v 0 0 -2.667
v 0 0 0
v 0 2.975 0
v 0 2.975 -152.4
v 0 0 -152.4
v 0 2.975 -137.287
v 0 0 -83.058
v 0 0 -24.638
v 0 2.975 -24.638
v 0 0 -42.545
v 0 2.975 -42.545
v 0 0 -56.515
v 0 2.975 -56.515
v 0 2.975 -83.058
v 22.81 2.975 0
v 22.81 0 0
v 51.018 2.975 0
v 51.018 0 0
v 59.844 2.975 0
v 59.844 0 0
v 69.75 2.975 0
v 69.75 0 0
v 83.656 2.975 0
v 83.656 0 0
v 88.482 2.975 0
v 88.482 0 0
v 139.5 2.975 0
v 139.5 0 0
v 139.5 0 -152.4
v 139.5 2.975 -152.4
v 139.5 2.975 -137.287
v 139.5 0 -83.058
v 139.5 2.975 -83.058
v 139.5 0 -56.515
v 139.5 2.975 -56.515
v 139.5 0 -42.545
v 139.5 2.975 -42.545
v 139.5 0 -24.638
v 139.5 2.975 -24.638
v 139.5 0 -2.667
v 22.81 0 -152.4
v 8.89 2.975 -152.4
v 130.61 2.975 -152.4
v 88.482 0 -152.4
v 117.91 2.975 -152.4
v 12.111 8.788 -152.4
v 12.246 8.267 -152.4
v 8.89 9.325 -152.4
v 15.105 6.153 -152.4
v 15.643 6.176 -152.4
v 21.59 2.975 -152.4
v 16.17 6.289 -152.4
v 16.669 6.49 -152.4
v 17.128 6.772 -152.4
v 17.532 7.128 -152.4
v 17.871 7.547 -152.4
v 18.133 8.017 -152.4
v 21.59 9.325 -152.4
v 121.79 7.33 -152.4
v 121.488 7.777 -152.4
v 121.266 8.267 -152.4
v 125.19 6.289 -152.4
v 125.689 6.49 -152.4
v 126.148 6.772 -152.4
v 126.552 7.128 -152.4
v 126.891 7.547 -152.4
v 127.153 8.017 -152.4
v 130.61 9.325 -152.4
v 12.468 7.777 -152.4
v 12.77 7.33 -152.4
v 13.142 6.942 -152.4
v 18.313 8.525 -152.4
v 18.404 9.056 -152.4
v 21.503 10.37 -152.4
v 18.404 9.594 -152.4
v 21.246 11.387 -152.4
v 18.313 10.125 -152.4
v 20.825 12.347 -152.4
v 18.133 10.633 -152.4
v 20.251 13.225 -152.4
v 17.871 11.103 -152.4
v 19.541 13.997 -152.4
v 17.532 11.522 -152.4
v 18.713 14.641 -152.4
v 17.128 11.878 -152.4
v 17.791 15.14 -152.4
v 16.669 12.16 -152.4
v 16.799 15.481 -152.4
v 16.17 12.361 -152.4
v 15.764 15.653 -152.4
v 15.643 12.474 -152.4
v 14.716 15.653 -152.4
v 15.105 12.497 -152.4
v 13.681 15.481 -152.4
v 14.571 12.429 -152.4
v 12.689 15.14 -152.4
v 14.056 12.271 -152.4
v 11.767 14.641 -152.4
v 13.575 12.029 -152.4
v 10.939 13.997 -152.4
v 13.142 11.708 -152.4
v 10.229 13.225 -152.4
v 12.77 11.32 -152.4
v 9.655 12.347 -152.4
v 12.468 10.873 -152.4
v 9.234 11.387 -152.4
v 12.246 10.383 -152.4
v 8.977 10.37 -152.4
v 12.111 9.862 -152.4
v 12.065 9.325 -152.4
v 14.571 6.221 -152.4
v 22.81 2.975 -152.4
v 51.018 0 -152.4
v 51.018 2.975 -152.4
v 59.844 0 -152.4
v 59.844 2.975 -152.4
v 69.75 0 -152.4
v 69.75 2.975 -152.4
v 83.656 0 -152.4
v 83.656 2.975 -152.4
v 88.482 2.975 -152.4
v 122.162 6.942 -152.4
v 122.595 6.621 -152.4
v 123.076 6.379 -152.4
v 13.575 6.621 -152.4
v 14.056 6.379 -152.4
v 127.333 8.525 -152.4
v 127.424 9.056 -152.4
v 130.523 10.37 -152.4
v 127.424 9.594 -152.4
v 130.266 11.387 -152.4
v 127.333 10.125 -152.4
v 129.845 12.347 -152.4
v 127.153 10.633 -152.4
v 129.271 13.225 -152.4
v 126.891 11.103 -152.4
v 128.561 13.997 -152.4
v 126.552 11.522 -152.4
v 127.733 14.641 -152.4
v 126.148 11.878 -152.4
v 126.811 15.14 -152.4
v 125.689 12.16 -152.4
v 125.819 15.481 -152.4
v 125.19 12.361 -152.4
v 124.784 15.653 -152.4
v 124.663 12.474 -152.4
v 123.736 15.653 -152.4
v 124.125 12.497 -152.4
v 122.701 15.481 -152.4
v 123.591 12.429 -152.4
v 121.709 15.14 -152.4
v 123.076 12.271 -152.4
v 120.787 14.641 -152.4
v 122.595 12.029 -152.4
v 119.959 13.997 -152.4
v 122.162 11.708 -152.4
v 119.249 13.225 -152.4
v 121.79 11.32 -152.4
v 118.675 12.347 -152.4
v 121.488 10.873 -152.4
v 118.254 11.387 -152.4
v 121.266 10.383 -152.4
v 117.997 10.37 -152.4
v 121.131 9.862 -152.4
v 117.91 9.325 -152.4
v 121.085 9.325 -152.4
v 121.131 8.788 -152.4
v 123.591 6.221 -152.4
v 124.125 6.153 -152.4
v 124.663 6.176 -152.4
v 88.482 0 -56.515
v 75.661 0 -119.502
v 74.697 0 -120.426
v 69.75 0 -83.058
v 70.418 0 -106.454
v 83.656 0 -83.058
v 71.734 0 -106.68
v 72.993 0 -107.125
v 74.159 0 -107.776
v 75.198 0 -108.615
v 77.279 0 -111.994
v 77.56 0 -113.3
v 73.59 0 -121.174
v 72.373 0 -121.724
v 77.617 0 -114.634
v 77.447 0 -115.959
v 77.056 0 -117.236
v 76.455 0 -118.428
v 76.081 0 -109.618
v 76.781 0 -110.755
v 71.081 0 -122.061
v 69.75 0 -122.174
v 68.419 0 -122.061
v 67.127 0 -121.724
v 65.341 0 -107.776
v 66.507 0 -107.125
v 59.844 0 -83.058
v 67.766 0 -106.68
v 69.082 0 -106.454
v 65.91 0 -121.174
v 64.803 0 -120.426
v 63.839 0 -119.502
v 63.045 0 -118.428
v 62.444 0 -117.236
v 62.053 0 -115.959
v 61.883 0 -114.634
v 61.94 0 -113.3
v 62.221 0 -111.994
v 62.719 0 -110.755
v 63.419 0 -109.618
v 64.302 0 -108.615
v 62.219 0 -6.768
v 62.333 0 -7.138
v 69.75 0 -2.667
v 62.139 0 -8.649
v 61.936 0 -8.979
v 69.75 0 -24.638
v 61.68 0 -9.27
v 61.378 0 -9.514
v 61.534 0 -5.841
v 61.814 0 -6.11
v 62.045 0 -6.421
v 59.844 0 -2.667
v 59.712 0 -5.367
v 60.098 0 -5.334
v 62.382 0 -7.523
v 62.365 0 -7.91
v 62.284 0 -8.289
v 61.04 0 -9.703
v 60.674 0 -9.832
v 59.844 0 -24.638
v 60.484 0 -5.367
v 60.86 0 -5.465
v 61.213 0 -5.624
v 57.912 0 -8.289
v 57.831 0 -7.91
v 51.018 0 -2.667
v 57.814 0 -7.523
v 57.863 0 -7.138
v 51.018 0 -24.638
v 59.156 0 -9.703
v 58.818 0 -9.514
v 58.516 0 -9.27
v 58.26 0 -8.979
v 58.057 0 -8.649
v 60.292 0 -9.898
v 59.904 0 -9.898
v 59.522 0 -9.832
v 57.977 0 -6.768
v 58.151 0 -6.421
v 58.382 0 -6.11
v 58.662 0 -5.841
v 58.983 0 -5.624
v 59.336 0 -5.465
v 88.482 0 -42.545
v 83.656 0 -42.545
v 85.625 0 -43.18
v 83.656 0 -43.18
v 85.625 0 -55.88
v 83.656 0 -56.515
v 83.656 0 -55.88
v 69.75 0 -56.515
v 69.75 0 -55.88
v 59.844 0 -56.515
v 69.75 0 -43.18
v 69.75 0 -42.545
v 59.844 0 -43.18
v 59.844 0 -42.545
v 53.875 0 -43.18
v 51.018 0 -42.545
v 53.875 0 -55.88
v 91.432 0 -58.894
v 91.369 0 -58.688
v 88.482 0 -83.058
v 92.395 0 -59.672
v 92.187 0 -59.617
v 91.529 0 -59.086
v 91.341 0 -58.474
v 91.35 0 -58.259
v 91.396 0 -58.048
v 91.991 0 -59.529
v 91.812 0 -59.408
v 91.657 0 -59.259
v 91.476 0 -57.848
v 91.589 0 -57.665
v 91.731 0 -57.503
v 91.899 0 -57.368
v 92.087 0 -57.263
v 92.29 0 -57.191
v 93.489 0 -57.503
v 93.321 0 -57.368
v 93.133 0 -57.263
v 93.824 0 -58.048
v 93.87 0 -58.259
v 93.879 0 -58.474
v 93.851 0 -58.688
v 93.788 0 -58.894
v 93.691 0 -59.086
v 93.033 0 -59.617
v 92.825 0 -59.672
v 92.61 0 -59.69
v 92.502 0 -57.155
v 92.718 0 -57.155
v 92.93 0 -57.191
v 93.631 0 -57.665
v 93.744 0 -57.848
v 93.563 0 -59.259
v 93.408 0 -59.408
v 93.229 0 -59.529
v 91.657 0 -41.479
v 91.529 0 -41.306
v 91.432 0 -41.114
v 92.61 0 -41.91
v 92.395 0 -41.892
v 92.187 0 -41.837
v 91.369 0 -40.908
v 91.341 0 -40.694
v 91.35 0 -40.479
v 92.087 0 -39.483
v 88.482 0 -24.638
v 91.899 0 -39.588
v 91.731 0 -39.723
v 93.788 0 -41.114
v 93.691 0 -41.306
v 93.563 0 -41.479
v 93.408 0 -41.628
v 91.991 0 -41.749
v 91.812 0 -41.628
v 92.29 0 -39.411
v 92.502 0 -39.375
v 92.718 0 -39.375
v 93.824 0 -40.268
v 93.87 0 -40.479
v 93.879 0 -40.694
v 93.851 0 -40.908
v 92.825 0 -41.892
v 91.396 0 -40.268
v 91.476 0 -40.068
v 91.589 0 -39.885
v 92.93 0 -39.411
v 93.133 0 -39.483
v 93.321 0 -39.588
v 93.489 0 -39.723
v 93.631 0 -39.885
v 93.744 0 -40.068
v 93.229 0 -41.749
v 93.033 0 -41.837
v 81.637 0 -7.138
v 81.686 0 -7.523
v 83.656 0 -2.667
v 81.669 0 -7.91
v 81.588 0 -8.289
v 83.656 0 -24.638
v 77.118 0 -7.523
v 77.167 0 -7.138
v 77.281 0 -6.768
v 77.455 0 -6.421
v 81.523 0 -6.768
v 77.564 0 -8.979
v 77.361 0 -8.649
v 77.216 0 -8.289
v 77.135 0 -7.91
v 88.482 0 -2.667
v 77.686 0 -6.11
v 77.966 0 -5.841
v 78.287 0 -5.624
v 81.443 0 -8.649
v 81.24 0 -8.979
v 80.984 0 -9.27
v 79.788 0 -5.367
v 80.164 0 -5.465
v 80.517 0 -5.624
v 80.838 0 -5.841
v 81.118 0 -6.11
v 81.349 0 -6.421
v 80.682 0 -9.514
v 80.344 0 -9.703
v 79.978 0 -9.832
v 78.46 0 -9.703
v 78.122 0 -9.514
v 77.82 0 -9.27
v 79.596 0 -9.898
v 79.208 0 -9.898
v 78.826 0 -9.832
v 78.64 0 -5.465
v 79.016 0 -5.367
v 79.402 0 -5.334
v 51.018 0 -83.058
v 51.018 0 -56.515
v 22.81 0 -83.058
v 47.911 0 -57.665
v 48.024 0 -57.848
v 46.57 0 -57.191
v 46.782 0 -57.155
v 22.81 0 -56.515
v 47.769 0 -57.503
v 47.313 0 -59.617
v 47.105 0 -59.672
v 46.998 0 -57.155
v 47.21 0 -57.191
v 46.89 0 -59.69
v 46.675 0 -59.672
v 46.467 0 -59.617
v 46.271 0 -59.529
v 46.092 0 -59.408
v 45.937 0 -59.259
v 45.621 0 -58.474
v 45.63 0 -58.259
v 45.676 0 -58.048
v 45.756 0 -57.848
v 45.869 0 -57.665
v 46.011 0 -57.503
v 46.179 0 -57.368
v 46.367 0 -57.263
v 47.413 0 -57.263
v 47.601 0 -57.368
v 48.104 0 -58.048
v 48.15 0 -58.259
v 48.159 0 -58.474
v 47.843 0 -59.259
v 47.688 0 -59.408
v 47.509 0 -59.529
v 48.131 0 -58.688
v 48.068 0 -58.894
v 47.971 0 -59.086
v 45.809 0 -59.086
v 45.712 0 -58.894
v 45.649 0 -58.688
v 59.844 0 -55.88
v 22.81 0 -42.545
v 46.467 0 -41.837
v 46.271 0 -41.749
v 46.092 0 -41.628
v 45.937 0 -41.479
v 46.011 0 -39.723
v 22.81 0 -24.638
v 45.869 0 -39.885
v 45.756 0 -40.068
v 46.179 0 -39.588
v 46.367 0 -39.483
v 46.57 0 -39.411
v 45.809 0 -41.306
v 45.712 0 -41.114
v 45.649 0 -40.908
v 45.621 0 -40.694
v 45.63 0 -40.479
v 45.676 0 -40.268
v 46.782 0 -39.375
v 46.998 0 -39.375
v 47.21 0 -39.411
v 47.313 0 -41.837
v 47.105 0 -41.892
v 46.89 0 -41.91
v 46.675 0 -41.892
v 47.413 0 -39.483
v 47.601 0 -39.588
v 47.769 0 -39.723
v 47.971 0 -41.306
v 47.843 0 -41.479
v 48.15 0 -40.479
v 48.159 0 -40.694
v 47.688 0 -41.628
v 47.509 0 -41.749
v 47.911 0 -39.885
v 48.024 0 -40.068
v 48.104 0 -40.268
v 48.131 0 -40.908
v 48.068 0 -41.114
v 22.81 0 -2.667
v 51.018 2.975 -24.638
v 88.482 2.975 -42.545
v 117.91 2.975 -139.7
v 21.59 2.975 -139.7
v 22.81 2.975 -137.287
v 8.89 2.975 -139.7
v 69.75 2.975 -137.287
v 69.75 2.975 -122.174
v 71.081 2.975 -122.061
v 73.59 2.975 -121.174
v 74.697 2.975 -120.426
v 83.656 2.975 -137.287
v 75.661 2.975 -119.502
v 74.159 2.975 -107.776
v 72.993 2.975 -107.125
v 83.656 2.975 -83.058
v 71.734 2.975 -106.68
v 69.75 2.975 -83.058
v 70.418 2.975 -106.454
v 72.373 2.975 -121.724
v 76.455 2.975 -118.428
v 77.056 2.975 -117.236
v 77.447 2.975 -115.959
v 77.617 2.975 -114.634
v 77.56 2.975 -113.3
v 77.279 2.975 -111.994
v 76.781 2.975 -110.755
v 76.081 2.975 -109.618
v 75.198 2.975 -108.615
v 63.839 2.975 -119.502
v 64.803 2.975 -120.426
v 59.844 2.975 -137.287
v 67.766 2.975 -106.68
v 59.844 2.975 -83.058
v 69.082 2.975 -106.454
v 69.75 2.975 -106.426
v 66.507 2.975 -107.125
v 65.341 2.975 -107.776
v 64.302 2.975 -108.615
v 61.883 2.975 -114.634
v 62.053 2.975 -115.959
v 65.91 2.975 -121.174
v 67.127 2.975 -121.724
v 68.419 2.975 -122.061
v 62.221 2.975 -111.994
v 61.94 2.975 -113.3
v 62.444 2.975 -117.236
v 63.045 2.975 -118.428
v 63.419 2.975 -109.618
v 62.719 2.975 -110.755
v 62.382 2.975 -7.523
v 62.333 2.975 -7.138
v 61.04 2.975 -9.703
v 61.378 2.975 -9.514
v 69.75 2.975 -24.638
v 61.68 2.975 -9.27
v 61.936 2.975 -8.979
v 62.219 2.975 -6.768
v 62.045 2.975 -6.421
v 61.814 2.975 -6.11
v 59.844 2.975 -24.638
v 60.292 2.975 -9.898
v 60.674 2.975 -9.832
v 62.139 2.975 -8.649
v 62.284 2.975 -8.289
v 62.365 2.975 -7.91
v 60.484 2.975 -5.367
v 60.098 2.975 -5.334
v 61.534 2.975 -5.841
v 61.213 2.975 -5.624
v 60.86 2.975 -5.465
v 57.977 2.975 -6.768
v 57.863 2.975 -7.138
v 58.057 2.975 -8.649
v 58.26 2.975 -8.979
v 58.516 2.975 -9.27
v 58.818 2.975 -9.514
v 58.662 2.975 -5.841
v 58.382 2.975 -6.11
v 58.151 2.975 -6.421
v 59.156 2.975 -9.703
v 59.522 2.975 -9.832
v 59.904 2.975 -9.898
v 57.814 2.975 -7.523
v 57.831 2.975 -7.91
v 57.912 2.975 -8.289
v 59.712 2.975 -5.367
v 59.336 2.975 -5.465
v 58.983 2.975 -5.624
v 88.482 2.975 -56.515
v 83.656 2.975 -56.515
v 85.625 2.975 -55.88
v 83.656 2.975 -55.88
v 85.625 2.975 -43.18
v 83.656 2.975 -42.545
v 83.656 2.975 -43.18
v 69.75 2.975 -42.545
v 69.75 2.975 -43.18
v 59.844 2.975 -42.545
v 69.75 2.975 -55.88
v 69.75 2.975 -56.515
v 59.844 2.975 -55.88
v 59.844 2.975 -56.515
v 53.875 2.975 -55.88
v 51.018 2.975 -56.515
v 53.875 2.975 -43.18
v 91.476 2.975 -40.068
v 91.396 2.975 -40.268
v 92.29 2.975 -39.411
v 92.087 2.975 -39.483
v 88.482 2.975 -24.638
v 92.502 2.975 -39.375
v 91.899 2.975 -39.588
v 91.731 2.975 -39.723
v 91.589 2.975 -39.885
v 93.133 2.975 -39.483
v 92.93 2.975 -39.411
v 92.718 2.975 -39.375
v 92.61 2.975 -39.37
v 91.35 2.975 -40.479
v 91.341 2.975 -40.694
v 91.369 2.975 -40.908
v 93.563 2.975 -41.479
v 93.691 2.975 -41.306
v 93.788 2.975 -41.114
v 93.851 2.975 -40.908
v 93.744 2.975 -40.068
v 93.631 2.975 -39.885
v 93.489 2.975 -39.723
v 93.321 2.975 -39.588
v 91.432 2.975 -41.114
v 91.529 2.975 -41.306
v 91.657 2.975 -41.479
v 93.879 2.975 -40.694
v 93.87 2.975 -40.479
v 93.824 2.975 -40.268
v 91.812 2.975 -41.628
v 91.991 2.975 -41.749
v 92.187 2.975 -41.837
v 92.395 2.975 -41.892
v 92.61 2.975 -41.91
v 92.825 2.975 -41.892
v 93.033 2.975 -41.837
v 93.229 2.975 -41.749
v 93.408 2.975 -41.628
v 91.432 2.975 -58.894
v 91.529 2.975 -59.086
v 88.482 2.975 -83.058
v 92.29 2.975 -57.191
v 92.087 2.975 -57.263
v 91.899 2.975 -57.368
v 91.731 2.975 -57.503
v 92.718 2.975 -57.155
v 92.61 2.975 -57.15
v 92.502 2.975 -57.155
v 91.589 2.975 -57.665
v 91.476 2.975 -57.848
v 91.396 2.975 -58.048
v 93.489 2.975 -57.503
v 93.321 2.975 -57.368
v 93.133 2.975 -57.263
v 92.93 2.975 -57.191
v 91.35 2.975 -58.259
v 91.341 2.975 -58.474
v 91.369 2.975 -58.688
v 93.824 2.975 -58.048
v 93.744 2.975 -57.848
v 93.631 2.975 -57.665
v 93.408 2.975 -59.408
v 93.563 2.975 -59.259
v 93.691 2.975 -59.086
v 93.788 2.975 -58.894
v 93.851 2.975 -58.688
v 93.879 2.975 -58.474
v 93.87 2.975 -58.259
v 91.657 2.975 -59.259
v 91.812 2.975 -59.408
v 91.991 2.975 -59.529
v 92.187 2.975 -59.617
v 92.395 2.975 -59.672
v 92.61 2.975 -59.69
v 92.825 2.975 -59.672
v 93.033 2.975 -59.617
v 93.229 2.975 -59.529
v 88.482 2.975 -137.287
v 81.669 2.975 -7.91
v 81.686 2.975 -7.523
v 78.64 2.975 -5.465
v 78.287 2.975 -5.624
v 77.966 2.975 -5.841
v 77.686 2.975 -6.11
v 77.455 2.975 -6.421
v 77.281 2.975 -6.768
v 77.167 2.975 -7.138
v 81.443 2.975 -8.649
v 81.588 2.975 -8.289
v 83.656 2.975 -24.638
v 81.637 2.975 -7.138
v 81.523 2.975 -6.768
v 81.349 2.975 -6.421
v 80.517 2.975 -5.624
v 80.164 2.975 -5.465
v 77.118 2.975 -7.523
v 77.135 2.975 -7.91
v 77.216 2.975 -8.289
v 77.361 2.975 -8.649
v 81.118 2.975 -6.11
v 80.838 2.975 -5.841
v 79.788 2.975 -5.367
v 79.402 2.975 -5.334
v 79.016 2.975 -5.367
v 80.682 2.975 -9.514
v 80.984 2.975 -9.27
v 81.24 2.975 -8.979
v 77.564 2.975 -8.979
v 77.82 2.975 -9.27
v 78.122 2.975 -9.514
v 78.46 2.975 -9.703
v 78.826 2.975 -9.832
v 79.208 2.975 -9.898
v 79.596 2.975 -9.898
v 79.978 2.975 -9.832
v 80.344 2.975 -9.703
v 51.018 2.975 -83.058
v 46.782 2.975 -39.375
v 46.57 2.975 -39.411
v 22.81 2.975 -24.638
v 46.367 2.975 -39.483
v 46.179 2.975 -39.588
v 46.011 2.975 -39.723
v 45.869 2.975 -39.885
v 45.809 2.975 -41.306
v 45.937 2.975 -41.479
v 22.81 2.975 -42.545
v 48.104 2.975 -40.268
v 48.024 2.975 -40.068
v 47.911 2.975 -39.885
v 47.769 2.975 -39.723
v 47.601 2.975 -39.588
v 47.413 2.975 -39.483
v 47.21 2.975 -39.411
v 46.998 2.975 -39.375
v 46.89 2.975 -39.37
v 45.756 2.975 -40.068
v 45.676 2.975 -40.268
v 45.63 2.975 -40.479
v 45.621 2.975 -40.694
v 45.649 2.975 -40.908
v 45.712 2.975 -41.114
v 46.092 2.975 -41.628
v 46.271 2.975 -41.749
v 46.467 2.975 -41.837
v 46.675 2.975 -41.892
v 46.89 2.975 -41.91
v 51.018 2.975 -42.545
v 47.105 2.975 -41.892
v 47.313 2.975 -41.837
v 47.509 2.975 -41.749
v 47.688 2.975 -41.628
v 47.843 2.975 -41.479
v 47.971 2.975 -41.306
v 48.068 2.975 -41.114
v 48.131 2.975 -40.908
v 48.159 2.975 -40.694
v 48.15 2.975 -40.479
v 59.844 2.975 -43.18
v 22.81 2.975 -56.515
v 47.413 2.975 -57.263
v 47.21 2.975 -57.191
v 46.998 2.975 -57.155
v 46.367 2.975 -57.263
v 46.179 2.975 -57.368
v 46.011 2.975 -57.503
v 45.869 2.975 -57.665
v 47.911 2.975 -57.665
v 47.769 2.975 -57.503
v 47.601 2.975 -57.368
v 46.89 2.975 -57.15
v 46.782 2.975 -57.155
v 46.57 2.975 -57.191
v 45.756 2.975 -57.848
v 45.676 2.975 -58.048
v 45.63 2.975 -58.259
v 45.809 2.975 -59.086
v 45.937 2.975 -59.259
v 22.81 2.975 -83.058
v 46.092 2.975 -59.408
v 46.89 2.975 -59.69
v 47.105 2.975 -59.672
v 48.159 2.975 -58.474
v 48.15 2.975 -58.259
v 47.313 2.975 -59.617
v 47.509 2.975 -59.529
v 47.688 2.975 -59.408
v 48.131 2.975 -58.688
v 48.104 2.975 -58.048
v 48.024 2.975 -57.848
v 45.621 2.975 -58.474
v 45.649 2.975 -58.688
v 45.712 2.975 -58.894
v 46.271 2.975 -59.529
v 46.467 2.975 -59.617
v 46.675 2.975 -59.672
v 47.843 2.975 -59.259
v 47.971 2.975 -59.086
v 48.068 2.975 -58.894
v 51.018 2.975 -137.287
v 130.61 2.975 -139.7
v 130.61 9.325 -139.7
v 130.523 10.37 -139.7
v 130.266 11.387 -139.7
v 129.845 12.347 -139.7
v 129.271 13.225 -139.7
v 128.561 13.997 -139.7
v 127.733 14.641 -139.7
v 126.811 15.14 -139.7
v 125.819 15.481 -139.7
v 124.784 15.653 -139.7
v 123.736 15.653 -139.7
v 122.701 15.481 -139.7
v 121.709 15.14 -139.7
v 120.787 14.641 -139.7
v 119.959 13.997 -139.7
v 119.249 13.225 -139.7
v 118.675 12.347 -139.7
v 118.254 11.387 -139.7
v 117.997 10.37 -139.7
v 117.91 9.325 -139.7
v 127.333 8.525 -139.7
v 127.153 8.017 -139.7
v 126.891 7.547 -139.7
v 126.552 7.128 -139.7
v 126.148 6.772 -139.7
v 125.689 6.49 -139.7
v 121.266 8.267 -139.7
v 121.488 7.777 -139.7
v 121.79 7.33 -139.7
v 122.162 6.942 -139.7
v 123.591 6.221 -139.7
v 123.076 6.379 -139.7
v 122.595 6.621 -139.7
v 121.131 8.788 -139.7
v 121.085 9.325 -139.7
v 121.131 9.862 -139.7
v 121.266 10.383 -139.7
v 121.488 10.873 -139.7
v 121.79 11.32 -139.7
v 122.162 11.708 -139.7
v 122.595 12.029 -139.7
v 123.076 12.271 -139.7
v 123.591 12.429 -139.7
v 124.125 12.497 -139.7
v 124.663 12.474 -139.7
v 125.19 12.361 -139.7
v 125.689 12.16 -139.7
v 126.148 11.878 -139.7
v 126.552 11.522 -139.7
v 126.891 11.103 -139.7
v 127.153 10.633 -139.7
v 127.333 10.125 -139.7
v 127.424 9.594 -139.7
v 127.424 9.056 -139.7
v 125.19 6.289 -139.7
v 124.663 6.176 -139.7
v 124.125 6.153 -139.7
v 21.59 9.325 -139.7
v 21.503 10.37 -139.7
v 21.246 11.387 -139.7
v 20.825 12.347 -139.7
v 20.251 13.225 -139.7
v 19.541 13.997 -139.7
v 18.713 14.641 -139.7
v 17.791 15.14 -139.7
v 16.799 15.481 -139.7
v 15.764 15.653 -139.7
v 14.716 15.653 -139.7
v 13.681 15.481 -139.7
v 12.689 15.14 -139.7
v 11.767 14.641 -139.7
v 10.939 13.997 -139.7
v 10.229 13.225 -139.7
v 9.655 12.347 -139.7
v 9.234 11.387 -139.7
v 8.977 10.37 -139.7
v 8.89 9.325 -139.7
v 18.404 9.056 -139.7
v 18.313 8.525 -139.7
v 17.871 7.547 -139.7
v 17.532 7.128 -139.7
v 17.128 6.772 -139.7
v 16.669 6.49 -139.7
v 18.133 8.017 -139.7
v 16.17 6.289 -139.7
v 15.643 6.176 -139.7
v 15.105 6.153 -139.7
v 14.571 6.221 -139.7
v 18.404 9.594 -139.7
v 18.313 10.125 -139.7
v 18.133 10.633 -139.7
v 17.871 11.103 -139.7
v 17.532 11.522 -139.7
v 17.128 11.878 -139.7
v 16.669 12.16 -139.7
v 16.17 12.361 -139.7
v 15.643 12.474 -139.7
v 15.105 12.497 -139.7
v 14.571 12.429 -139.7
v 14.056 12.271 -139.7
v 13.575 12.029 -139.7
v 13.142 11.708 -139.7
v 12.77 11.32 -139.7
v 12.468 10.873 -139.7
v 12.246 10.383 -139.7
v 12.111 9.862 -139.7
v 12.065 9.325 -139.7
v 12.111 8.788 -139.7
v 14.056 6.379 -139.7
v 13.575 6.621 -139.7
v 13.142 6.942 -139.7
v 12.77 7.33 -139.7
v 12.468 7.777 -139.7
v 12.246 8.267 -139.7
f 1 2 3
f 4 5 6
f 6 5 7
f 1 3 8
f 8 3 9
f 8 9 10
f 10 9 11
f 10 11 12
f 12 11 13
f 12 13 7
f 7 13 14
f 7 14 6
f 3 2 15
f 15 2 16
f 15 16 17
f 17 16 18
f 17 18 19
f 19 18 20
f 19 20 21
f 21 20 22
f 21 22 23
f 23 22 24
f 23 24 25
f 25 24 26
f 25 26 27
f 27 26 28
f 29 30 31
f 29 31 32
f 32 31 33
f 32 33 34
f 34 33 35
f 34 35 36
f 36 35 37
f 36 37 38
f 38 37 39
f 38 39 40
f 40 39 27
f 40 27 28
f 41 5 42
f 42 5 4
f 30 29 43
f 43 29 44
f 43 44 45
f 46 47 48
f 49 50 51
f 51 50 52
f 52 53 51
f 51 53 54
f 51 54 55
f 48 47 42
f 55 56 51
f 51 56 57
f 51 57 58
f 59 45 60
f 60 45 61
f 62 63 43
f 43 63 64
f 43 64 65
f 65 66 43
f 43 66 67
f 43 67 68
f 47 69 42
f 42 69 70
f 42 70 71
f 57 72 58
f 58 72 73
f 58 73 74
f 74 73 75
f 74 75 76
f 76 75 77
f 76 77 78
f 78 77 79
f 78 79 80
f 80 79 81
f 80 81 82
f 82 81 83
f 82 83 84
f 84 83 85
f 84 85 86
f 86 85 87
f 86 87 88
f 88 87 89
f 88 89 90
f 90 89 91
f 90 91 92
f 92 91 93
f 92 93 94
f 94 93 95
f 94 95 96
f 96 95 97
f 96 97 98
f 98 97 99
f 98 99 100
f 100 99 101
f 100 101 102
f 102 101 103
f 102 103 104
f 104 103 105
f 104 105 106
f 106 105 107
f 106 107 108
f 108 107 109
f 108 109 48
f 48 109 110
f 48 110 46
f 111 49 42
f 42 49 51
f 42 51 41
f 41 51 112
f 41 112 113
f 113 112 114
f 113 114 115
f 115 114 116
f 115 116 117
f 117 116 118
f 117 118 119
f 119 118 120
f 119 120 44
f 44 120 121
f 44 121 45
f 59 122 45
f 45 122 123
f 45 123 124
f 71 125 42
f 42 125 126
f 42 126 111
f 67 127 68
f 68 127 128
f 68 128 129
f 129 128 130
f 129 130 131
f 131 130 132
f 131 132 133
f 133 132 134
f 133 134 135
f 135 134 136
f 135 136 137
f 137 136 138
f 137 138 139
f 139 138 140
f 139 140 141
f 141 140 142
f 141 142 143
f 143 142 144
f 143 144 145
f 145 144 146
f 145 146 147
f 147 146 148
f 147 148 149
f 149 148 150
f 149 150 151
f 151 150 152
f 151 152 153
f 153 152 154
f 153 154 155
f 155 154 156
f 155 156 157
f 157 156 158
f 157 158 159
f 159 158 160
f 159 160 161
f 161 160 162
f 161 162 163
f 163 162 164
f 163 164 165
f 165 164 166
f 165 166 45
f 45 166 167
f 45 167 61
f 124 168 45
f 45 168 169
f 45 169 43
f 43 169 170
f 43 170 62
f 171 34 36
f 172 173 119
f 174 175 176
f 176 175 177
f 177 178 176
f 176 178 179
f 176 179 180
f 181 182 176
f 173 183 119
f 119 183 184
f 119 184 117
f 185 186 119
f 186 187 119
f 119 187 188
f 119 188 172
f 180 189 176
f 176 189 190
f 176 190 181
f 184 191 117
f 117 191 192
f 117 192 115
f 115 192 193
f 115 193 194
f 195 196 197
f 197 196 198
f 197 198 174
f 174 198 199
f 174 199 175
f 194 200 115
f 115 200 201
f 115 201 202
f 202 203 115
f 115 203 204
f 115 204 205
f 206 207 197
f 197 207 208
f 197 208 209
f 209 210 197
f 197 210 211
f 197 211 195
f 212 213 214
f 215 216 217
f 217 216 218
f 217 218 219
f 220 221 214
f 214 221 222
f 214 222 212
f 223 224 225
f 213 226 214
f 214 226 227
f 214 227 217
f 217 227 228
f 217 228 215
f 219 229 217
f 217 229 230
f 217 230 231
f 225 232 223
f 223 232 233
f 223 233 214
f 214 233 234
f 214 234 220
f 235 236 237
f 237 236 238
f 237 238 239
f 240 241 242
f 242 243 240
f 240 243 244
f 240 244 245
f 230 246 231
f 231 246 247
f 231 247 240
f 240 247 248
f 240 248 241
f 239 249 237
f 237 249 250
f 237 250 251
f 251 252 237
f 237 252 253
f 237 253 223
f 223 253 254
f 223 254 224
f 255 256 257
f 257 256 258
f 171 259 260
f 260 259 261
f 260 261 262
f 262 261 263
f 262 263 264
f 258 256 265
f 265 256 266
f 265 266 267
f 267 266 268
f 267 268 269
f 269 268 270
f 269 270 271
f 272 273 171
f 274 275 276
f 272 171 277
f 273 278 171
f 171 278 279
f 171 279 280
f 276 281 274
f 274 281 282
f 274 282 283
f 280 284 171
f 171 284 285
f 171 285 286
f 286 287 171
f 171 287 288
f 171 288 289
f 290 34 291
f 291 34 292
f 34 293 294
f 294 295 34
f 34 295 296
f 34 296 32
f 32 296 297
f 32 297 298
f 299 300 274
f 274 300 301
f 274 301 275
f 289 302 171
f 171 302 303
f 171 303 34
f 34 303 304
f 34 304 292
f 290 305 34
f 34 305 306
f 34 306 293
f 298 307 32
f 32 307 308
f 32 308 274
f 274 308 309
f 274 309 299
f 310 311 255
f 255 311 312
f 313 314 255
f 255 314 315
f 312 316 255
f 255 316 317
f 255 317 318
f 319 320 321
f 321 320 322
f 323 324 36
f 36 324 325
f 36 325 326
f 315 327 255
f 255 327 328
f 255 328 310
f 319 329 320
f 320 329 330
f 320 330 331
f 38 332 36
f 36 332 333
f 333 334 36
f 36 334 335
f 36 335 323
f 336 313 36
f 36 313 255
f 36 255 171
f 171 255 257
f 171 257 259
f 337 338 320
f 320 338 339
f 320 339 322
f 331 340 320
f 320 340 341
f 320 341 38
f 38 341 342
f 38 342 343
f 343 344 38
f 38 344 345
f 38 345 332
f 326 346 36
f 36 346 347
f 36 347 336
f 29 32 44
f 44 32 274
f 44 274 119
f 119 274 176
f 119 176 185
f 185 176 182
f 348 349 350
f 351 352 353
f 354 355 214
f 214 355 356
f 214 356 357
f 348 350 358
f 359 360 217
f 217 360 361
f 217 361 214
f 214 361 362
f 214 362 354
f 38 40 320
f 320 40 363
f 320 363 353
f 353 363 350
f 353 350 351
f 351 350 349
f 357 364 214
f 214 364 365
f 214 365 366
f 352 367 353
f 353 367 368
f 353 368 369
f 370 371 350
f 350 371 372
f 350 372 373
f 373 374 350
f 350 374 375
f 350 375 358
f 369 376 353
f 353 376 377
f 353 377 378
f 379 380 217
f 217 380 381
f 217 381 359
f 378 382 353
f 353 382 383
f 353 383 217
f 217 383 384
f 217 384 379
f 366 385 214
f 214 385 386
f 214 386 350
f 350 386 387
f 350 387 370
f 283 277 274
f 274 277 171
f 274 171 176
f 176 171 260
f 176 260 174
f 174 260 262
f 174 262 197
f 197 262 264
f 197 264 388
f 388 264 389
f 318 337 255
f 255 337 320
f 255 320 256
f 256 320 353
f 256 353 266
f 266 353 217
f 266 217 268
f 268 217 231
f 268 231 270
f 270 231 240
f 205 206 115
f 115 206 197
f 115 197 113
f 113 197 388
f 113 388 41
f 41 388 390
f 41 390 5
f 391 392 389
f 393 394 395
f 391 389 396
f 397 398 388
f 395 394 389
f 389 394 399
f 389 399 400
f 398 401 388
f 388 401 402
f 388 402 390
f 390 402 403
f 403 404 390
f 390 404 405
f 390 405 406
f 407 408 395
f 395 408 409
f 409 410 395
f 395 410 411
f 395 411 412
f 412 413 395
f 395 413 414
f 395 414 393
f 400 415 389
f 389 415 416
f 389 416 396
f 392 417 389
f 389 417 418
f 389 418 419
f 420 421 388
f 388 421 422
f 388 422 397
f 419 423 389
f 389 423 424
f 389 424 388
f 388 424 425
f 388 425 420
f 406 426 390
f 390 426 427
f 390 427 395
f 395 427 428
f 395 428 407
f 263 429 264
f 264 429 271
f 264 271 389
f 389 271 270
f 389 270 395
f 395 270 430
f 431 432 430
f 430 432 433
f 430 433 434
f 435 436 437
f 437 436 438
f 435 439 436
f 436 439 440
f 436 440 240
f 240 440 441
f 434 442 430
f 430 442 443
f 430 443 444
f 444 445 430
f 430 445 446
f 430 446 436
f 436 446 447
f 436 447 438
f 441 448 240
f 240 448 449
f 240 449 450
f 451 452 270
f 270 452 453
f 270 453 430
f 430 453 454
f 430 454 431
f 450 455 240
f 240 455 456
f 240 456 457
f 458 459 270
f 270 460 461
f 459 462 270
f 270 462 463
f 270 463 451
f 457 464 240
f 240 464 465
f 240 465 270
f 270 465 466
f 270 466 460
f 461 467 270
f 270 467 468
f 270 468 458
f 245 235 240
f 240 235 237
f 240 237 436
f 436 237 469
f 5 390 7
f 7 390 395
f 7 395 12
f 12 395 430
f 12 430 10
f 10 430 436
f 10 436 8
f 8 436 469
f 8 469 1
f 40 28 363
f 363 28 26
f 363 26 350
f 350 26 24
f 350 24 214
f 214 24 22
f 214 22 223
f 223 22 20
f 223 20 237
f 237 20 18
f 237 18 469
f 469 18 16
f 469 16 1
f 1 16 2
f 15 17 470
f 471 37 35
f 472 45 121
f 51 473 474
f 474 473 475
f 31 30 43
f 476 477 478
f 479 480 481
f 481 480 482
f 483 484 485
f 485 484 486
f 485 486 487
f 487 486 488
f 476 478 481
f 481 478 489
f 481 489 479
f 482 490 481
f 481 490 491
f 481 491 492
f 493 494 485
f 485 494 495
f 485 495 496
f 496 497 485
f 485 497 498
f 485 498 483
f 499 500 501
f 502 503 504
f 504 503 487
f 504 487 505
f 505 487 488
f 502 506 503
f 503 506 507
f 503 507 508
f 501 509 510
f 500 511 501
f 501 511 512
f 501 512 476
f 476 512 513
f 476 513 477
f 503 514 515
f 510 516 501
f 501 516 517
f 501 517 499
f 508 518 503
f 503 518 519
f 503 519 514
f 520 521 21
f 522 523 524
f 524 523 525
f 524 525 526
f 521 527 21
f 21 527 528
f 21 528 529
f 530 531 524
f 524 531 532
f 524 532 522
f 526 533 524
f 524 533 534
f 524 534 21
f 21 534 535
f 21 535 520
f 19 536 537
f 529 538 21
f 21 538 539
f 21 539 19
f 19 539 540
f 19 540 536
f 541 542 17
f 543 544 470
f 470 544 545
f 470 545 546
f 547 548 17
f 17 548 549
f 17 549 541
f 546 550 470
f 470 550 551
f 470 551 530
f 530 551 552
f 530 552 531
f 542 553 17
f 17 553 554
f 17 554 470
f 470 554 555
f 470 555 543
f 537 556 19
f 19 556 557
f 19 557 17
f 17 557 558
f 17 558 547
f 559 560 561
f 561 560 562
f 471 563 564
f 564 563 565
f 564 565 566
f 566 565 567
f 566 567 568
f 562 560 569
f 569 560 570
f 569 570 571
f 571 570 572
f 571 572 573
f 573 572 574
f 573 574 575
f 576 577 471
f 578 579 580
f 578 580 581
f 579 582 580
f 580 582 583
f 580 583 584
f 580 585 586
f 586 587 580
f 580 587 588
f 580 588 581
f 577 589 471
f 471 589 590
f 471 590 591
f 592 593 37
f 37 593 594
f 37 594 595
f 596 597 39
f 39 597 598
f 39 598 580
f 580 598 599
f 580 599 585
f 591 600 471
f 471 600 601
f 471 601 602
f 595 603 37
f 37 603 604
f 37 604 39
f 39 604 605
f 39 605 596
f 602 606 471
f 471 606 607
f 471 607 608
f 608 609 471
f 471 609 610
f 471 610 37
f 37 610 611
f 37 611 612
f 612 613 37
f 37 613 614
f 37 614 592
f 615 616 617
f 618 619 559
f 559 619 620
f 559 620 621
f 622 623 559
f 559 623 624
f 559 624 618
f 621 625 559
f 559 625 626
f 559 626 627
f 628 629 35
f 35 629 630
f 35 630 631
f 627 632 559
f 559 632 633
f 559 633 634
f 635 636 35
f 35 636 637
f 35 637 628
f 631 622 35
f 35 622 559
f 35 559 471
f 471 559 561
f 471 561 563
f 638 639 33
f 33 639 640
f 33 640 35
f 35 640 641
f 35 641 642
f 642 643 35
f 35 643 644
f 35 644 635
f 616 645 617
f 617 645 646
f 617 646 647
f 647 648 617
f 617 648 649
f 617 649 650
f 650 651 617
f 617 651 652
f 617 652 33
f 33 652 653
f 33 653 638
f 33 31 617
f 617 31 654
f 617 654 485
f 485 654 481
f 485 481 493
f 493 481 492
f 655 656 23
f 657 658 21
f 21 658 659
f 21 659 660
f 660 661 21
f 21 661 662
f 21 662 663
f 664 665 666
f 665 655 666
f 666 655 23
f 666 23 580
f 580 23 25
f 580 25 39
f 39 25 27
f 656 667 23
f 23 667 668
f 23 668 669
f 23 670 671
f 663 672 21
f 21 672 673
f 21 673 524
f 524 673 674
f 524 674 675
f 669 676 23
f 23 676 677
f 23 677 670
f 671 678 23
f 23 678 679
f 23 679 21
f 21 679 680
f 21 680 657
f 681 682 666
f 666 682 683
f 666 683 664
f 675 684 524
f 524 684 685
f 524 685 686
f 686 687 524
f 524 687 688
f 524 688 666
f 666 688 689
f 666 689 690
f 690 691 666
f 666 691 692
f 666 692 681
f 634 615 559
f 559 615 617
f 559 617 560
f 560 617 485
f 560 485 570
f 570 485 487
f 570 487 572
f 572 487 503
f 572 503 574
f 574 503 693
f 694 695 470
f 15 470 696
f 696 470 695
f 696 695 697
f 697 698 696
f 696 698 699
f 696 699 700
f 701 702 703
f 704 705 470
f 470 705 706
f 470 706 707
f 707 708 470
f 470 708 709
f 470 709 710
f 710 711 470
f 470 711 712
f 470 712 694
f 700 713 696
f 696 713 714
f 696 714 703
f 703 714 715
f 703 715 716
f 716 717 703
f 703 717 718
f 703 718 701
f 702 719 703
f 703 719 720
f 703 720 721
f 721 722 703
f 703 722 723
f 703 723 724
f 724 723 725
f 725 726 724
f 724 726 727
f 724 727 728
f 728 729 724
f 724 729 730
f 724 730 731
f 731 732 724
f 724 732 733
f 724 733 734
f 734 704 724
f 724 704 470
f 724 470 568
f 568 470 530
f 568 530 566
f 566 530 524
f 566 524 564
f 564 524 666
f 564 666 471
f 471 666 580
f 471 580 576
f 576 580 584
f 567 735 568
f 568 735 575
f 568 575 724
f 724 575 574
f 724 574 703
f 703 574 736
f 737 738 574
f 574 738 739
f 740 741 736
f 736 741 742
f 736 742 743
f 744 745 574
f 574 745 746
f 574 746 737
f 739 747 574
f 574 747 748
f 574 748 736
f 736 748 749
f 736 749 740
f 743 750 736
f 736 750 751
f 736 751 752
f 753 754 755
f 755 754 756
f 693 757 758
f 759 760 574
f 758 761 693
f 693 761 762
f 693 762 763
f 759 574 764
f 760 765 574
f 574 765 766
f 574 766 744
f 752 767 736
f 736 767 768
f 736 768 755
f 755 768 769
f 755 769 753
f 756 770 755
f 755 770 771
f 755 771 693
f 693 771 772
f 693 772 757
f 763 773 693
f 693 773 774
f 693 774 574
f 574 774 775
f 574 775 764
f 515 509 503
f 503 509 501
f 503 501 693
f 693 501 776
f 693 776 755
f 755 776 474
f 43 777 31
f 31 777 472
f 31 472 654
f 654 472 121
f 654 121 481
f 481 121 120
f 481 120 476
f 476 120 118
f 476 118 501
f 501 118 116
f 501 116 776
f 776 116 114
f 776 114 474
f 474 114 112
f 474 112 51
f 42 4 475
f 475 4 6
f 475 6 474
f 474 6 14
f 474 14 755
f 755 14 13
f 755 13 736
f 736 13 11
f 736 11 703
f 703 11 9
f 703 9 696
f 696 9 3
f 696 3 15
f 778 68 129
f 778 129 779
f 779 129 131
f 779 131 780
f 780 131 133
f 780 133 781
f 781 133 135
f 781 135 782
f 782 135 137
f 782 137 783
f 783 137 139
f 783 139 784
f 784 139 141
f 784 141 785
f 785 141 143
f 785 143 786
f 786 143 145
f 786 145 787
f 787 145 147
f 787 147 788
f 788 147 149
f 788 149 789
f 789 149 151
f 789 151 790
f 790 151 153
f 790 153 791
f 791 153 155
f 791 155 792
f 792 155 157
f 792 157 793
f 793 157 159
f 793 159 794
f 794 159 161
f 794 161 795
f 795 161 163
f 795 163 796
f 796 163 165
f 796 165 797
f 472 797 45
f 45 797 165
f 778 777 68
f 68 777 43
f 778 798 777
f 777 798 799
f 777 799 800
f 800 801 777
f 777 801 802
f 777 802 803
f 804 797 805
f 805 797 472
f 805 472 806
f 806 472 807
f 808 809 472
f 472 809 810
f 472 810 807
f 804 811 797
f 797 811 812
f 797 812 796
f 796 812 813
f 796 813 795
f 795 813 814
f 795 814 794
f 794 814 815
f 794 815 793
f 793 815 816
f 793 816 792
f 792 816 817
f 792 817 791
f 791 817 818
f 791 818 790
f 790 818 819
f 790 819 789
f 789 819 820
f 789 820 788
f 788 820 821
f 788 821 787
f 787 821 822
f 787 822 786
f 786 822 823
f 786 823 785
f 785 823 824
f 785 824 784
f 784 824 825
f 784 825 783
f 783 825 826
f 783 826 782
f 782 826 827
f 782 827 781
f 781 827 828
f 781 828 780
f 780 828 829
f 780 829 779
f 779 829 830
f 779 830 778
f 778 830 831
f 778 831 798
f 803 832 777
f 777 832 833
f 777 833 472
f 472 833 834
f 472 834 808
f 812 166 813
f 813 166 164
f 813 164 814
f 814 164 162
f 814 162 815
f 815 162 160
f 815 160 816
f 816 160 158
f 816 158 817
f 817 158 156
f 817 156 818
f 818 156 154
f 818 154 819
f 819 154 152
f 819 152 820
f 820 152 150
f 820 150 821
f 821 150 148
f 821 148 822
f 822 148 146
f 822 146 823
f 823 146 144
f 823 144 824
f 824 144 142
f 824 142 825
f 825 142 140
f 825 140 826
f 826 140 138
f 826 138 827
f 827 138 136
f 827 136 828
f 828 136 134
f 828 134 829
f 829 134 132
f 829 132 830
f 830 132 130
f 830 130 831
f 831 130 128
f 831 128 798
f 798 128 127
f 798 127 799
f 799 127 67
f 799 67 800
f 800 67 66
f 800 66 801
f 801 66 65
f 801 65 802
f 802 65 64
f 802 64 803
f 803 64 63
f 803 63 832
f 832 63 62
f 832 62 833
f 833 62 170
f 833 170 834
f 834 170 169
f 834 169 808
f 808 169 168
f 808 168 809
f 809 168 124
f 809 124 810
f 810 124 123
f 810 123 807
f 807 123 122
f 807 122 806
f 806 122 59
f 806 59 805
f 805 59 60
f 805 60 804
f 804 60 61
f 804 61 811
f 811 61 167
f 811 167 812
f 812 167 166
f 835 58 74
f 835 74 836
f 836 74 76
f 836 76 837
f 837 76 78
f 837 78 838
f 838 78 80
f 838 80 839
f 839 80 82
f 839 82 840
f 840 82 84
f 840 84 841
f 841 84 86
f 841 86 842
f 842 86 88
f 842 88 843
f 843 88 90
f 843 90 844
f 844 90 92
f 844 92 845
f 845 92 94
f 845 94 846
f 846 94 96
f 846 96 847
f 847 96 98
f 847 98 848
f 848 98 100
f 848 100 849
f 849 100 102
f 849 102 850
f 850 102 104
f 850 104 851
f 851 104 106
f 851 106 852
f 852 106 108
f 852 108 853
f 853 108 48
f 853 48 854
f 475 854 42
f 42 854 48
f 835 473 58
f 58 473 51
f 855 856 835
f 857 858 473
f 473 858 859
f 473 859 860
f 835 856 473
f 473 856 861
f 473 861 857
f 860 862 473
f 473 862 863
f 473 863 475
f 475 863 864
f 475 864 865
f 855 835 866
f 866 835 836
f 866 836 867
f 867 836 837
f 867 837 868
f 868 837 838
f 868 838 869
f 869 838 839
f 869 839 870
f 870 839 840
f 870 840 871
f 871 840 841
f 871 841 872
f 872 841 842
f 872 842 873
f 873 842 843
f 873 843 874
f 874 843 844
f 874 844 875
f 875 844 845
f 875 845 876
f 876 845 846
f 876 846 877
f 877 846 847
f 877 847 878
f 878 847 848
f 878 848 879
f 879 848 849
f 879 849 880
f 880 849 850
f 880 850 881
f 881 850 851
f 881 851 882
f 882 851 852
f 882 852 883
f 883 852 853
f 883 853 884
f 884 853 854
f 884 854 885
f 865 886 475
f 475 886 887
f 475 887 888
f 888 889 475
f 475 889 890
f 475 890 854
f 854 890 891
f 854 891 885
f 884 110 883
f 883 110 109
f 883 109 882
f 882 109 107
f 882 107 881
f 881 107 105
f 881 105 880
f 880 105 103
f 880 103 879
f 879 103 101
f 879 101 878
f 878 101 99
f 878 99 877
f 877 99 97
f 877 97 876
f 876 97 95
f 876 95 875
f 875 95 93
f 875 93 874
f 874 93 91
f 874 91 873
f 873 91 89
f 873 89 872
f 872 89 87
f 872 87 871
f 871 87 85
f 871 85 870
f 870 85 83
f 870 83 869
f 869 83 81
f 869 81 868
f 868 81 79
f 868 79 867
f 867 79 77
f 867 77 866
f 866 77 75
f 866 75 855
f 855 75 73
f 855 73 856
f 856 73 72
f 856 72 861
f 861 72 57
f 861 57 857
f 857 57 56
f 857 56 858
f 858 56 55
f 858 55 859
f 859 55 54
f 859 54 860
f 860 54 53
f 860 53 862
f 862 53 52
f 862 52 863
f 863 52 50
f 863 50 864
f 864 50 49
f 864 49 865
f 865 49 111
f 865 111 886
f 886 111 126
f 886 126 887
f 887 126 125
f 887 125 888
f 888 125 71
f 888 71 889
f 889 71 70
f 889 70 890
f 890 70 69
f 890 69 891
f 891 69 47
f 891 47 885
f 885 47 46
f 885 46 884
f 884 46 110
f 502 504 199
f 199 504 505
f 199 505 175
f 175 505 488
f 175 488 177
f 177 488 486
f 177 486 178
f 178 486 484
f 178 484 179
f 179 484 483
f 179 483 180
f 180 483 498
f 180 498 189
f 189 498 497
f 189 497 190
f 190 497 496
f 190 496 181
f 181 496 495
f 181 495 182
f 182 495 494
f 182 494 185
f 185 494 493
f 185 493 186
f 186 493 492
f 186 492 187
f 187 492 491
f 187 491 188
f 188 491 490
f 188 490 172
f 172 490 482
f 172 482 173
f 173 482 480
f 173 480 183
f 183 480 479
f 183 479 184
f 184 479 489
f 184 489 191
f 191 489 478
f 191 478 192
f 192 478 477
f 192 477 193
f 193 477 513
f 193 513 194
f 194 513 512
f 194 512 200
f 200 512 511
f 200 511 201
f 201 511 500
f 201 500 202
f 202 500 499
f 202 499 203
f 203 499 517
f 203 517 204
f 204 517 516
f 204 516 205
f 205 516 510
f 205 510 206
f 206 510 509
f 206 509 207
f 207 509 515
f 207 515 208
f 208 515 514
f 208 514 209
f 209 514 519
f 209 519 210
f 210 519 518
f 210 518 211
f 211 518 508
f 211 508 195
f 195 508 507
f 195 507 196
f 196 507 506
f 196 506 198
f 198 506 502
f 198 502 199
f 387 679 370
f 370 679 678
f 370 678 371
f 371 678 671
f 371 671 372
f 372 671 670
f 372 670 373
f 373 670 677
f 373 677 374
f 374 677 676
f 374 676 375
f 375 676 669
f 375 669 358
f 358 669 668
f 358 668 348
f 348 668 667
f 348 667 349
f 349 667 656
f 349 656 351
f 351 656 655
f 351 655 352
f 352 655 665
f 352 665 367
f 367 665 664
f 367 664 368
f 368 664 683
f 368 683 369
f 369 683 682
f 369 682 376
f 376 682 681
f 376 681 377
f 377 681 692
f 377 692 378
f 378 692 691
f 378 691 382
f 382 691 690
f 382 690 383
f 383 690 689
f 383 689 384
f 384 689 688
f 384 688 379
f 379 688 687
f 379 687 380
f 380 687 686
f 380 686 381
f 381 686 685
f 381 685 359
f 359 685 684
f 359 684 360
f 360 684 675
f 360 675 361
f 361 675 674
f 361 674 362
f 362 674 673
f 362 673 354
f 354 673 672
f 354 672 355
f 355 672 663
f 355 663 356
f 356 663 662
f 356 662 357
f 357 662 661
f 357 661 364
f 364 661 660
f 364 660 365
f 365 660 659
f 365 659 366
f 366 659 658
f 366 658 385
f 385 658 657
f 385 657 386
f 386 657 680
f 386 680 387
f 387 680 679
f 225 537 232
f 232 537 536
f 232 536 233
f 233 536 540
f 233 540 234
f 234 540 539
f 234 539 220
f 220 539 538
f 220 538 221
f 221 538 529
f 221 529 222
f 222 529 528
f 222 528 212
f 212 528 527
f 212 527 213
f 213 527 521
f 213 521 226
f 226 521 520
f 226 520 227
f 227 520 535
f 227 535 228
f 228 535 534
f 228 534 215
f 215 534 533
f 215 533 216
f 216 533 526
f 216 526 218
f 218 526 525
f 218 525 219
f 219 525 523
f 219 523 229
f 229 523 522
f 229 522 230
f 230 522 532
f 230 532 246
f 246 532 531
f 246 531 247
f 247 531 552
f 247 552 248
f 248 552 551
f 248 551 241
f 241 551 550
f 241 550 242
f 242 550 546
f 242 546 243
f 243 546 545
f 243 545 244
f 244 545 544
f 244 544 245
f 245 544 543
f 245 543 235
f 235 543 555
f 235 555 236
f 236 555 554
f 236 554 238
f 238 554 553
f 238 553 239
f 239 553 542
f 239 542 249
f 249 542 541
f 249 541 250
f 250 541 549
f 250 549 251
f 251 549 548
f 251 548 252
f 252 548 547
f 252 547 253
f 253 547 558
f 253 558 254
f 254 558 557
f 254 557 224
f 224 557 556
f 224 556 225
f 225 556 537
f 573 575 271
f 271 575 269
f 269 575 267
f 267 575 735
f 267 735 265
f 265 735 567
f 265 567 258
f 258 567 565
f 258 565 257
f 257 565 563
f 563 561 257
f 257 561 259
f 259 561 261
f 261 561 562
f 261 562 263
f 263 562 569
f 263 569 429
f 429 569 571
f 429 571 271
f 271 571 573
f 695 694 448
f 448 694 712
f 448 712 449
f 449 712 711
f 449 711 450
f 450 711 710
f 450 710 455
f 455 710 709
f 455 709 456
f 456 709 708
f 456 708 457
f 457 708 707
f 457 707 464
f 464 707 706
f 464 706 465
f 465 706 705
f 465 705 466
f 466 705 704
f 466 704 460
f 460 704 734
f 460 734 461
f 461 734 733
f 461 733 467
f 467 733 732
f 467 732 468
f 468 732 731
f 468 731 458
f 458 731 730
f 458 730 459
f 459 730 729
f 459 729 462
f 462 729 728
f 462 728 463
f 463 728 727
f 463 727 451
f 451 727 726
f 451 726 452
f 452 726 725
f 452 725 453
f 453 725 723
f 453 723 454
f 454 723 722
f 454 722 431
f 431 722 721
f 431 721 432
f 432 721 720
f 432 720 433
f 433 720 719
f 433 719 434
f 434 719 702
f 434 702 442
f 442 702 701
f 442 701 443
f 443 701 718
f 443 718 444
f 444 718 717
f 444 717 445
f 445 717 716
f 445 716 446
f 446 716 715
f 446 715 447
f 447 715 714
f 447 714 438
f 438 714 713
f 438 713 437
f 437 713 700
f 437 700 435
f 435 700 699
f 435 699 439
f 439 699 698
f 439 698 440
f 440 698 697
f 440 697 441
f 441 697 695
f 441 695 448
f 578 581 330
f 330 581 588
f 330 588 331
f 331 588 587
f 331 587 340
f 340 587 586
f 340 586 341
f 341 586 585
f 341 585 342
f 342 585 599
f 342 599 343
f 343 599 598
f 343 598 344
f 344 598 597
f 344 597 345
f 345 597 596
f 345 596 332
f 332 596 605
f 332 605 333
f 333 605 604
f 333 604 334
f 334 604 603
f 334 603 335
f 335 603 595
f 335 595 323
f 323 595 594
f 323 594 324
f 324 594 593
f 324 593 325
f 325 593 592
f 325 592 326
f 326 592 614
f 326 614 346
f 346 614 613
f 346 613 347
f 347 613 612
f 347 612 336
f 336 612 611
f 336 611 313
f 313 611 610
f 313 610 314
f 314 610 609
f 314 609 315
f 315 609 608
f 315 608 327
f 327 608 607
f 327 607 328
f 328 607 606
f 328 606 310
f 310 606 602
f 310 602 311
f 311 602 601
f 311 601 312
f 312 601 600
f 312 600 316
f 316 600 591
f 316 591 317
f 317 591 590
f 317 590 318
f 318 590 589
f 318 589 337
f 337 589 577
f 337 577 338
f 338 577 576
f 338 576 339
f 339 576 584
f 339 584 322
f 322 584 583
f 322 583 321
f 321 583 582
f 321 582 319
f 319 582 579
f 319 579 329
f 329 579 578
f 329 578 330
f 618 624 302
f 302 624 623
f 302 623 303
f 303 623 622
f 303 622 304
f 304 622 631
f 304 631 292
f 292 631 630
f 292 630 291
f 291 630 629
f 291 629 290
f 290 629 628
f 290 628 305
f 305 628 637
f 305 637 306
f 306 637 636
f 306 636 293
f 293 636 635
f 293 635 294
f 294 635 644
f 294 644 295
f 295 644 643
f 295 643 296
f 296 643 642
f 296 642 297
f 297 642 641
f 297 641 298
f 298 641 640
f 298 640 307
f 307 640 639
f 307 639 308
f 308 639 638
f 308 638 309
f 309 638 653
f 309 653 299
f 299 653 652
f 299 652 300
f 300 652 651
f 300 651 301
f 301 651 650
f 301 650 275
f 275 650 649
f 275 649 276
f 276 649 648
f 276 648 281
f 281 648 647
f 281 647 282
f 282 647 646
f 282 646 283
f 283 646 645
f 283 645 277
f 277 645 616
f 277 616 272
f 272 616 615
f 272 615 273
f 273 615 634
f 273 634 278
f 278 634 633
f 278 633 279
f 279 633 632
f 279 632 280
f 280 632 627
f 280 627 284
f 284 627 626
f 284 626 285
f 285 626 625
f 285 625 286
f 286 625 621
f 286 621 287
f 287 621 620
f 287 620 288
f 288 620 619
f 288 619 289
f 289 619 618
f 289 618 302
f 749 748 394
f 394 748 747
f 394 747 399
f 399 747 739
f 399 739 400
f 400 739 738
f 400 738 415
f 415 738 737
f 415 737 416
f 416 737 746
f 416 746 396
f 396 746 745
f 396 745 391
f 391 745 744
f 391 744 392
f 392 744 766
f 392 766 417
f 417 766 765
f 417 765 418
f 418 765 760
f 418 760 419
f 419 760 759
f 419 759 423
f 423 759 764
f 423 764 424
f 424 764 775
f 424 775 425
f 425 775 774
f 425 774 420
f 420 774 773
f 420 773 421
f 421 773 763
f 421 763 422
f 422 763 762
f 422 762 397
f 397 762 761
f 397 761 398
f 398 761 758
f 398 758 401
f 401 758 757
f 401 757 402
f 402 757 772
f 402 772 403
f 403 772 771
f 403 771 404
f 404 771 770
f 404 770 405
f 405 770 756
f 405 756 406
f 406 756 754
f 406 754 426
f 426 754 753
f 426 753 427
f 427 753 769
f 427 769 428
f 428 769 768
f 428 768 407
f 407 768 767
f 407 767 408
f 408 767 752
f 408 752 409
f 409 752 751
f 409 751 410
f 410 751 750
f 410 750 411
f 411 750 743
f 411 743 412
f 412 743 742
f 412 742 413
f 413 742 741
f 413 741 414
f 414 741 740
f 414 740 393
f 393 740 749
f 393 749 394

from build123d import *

# Parameters (mm, degrees)
SKETCH1_W               = 139.5
SKETCH1_H               = 152.4
BOSS_EXTRUDE1_DEPTH     = 6.35
SKETCH2_W               = 139.5
SKETCH2_H               = 152.4
CUT_EXTRUDE1_DEPTH      = 3.375
SKETCH4_R               = 3.175000001
SKETCH4_R_2             = 3.175
BOSS_EXTRUDE3_DEPTH     = 12.7
SKETCH5_R               = 7.874
CUT_EXTRUDE2_DEPTH      = 16.675
SKETCH6_R               = 2.286
CUT_EXTRUDE3_DEPTH      = 3.975
SKETCH7_R               = 1.27
SKETCH7_W               = 31.75
SKETCH7_H               = 12.7
CUT_EXTRUDE4_DEPTH      = 1
CUT_EXTRUDE4_DEPTH_BACK = 16.675


with BuildPart() as part:
    # Sketch1 → Boss-Extrude1 (new body)
    with BuildSketch(Plane(origin=(0, 0, 0), x_dir=(1, 0, 0), z_dir=(0, 1, 0))):
        with Locations((69.75, 76.2)):
            Rectangle(SKETCH1_W, SKETCH1_H)
    extrude(amount=BOSS_EXTRUDE1_DEPTH)

    # Sketch2 → Cut-Extrude1 (cut)
    with BuildSketch(Plane(origin=(0, 6.35, 0), x_dir=(1, 0, 0), z_dir=(0, 1, 0))):
        with Locations((69.75, 76.2)):
            Rectangle(SKETCH2_W, SKETCH2_H)
    extrude(amount=-CUT_EXTRUDE1_DEPTH, mode=Mode.SUBTRACT)

    # Sketch4 → Boss-Extrude3 (add)
    with BuildSketch(Plane(origin=(0, 0, -152.4), x_dir=(-1, 0, 0), z_dir=(0, 0, -1))):
        with BuildLine():
            Line((-130.61, 9.325), (-130.61, 2.975))
            Line((-130.61, 2.975), (-117.91, 2.975))
            Line((-117.91, 2.975), (-117.91, 9.325))
            ThreePointArc((-117.91, 9.325), (-124.26, 15.675), (-130.61, 9.325))
        make_face()
        with Locations((-124.26, 9.325)):
            Circle(SKETCH4_R, mode=Mode.SUBTRACT)
        with BuildLine():
            Line((-21.59, 9.325), (-21.59, 2.975))
            Line((-21.59, 2.975), (-8.89, 2.975))
            Line((-8.89, 2.975), (-8.89, 9.325))
            ThreePointArc((-8.89, 9.325), (-15.24, 15.675), (-21.59, 9.325))
        make_face()
        with Locations((-15.24, 9.325)):
            Circle(SKETCH4_R_2, mode=Mode.SUBTRACT)
    extrude(amount=-BOSS_EXTRUDE3_DEPTH)

    # Sketch5 → Cut-Extrude2 (cut, through all)
    with BuildSketch(Plane.XZ):
        with Locations((69.75, -114.3)):
            Circle(SKETCH5_R)
    extrude(amount=-CUT_EXTRUDE2_DEPTH, mode=Mode.SUBTRACT)

    # Sketch6 → Cut-Extrude3 (cut, through all)
    with BuildSketch(Plane(origin=(0, 2.975, 0), x_dir=(1, 0, 0), z_dir=(0, 1, 0))):
        with Locations((60.098, 7.62)):
            Circle(SKETCH6_R)
        with Locations((79.402, 7.62)):
            Circle(SKETCH6_R)
    extrude(amount=-CUT_EXTRUDE3_DEPTH, mode=Mode.SUBTRACT)

    # Sketch7 → Cut-Extrude4 (cut, two sides)
    with BuildSketch(Plane.XZ) as cut_extrude4_sk:
        with Locations((46.89, -40.64)):
            Circle(SKETCH7_R)
        with Locations((92.61, -40.64)):
            Circle(SKETCH7_R)
        with Locations((92.61, -58.42)):
            Circle(SKETCH7_R)
        with Locations((46.89, -58.42)):
            Circle(SKETCH7_R)
        with Locations((69.75, -49.53)):
            Rectangle(SKETCH7_W, SKETCH7_H)
    extrude(amount=CUT_EXTRUDE4_DEPTH, mode=Mode.SUBTRACT)
    extrude(cut_extrude4_sk.sketch, amount=-CUT_EXTRUDE4_DEPTH_BACK, mode=Mode.SUBTRACT)


solid = part.part
